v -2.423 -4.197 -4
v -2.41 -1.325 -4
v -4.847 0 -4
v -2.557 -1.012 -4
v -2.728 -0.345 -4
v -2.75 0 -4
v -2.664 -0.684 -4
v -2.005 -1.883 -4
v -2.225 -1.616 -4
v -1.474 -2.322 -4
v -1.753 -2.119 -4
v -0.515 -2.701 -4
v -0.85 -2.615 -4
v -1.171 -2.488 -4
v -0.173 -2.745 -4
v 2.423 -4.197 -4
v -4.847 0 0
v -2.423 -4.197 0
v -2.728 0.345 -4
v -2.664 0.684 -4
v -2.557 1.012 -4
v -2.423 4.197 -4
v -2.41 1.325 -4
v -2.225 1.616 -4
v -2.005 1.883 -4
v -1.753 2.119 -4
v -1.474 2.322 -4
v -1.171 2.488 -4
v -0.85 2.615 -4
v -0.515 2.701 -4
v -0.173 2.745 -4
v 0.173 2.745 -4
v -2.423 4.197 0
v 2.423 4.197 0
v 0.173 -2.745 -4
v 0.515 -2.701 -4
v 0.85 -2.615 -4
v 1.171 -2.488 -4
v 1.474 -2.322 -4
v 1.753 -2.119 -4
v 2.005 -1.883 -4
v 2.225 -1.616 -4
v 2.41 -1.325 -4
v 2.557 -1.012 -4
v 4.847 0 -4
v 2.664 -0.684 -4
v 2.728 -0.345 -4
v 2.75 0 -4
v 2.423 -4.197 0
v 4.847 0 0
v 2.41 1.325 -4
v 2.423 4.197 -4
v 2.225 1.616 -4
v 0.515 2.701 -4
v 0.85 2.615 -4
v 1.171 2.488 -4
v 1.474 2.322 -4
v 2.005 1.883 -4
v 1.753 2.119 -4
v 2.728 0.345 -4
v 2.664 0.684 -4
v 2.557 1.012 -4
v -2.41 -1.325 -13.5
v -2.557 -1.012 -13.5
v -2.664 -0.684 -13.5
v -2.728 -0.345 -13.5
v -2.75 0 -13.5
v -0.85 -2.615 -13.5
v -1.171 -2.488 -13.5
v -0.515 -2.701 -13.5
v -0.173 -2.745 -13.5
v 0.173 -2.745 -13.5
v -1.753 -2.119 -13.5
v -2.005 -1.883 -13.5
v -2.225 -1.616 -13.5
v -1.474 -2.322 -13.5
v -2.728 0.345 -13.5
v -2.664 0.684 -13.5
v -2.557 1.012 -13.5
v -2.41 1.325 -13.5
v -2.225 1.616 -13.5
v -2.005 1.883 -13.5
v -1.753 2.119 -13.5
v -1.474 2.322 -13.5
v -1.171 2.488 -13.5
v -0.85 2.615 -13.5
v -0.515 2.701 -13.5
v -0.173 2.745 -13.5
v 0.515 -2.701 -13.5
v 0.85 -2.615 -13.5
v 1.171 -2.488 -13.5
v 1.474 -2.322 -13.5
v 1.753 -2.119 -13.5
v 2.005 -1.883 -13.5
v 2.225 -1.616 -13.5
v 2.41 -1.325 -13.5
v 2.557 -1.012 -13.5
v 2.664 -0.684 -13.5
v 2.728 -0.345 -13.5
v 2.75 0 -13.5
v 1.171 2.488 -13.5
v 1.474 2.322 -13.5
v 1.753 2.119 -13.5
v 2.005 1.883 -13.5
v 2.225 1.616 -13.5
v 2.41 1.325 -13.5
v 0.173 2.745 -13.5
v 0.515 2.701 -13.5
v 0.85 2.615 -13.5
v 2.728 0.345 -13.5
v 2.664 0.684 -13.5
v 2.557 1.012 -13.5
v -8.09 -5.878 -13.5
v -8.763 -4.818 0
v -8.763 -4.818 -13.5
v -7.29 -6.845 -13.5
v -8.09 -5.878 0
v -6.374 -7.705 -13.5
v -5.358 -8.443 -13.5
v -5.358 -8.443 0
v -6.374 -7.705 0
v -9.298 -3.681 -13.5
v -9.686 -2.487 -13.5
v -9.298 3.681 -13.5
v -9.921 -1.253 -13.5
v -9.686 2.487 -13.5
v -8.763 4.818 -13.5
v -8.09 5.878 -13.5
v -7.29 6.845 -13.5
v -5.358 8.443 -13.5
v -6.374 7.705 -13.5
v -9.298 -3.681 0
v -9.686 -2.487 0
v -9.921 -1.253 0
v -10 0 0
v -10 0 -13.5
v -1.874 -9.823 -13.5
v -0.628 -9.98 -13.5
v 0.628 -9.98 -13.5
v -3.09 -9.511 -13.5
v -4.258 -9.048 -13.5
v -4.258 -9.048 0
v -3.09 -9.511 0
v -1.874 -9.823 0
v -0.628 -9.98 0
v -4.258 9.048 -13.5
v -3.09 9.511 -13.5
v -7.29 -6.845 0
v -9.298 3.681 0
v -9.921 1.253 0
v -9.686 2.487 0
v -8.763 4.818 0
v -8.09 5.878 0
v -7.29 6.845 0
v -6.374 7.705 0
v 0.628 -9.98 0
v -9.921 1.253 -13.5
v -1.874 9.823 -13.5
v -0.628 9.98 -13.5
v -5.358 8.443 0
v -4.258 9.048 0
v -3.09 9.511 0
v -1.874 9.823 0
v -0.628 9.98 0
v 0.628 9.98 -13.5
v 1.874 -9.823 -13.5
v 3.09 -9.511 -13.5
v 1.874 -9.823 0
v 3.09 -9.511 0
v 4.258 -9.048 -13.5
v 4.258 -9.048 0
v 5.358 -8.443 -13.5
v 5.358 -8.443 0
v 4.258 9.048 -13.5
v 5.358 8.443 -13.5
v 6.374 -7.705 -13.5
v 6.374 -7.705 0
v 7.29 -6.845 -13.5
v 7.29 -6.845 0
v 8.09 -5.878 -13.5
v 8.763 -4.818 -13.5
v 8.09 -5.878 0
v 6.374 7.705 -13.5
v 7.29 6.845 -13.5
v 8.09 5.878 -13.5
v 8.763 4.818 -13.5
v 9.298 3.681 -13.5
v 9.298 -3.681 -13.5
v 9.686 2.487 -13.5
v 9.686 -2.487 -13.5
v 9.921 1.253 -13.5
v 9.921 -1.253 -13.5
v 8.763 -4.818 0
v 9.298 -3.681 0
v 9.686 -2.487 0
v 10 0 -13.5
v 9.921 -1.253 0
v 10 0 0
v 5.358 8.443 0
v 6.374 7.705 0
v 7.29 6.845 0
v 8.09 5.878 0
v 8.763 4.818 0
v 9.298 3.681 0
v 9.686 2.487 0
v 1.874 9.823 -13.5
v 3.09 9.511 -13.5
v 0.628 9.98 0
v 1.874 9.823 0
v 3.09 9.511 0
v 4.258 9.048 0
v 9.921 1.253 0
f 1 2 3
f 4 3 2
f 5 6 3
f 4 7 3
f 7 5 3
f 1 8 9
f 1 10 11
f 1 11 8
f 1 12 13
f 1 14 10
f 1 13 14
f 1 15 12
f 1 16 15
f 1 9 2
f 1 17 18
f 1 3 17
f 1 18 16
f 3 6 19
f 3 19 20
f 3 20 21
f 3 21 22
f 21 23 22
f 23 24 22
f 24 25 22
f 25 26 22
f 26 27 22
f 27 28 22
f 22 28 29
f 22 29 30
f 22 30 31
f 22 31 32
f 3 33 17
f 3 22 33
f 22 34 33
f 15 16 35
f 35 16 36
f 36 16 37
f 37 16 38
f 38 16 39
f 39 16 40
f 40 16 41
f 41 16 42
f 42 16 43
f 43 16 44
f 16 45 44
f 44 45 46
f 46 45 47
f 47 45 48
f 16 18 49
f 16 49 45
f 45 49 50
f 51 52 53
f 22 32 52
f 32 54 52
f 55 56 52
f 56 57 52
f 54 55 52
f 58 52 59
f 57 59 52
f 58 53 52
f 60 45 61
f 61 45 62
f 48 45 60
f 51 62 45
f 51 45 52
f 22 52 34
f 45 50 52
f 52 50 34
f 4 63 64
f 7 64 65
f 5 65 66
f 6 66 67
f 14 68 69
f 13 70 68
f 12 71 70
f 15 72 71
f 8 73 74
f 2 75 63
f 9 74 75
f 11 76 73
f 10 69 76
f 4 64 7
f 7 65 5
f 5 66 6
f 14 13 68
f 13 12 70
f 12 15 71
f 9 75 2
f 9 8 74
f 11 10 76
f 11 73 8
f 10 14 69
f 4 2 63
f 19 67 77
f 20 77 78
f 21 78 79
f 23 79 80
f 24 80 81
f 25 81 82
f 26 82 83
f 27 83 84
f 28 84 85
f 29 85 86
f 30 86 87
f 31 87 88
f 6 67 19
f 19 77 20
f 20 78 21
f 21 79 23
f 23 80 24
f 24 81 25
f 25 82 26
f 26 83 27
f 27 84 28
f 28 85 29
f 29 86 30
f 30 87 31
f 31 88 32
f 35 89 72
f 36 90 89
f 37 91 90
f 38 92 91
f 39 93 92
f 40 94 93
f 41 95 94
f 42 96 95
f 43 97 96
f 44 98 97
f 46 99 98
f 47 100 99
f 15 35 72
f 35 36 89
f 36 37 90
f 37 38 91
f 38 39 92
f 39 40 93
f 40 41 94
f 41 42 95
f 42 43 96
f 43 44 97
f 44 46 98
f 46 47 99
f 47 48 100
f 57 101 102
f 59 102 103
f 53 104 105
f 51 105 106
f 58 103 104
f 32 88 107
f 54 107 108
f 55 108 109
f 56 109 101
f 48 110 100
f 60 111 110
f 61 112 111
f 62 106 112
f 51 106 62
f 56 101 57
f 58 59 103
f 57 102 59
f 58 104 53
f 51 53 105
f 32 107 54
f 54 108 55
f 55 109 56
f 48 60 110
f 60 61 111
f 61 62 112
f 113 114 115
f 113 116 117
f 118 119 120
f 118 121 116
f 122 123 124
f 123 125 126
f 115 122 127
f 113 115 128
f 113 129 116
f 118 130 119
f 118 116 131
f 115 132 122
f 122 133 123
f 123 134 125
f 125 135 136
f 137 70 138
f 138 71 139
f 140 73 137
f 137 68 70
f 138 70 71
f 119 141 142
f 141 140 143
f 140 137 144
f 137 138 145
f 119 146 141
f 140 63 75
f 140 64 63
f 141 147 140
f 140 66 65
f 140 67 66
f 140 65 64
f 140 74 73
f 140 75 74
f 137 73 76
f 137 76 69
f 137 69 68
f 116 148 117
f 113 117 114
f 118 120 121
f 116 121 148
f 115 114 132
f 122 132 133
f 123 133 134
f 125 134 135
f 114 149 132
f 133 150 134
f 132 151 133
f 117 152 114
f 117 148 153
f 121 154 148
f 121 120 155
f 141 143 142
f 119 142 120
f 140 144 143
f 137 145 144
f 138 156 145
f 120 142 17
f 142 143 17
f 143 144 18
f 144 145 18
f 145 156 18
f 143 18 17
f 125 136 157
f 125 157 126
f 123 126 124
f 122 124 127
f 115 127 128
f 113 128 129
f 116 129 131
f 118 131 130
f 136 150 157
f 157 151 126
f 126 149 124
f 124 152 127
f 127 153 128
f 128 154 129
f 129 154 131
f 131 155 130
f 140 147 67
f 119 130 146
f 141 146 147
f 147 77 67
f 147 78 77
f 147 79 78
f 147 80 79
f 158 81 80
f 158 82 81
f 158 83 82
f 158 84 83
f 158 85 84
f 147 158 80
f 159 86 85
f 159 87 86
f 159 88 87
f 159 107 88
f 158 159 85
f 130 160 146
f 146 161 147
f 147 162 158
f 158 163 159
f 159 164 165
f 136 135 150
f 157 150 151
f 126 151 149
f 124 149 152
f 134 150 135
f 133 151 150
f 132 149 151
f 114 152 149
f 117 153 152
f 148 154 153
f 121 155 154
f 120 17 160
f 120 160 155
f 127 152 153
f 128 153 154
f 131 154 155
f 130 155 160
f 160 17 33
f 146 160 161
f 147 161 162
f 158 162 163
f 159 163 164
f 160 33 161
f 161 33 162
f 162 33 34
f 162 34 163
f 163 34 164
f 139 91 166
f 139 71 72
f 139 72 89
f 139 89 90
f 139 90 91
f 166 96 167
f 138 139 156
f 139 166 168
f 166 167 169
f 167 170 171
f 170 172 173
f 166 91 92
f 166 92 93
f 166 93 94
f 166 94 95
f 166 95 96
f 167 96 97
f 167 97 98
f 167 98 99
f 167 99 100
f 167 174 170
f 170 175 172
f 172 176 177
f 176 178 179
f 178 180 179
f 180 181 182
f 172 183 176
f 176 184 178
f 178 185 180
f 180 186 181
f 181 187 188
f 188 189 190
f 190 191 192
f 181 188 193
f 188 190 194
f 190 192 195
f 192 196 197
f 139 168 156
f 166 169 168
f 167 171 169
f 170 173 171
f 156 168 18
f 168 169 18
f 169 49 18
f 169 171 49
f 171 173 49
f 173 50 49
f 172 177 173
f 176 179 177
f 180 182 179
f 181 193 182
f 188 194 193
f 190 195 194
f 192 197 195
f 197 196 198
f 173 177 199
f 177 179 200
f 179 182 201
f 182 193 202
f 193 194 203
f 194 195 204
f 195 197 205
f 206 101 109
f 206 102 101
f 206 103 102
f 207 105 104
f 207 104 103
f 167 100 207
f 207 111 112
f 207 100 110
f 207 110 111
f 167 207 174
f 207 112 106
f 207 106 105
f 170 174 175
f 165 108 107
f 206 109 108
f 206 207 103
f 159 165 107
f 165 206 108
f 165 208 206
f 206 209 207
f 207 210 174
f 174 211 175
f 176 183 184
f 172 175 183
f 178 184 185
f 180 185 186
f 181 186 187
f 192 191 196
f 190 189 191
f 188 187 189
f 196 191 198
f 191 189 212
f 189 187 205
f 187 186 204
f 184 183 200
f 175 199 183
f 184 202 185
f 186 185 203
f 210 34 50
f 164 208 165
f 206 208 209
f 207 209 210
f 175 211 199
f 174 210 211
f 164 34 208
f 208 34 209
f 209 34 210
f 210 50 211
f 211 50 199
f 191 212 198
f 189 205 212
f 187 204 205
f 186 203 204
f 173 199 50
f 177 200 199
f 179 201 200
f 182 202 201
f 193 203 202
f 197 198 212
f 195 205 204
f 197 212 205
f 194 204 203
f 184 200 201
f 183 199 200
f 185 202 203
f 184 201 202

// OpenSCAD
$fn = 50;

difference() {
	union() {
		translate(v = [0, 0, -13.5]) {
			cylinder(h = 13.5, r = 10.0);
		}
	}
	union() {
		translate(v = [0, 0, 0]) {
			rotate(a = [0, 0, 0]) {
				difference() {
					union() {
						translate(v = [0, 0, -4]) {
							linear_extrude(height = 4) {
								polygon(points = [[4.8468, 0.0], [2.4234000000000004, 4.197451927062417], [-2.423399999999999, 4.197451927062417], [-4.8468, 5.935618106107392e-16], [-2.423400000000002, -4.197451927062416], [2.423399999999997, -4.197451927062419]]);
							}
						}
					}
					union();
				}
			}
		}
		#translate(v = [0, 0, -100.0]) {
			cylinder(h = 200, r = 2.75);
		}
	}
}
